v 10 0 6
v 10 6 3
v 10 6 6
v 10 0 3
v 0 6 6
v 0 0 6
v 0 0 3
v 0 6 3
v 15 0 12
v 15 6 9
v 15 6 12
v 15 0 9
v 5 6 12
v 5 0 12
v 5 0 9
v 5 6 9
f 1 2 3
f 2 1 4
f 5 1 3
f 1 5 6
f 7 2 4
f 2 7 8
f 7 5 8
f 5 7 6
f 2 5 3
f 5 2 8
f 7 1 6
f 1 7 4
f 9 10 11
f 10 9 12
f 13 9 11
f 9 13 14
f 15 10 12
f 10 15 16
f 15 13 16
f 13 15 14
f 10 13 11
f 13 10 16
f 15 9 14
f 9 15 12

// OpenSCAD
translate([5.0, 3, -1.5+6])
    cube([10,6,3], center=true);

translate([5.0+5, 3, -1.5+12])
    cube([10,6,3], center=true);
    
//translate([-40.0, -30.0, -1.5+6])
    //cube([100,100,3], center=true);

//translate([50.0+5, -30.0, -1.5+12])
    //cube([100,100,3], center=true);
